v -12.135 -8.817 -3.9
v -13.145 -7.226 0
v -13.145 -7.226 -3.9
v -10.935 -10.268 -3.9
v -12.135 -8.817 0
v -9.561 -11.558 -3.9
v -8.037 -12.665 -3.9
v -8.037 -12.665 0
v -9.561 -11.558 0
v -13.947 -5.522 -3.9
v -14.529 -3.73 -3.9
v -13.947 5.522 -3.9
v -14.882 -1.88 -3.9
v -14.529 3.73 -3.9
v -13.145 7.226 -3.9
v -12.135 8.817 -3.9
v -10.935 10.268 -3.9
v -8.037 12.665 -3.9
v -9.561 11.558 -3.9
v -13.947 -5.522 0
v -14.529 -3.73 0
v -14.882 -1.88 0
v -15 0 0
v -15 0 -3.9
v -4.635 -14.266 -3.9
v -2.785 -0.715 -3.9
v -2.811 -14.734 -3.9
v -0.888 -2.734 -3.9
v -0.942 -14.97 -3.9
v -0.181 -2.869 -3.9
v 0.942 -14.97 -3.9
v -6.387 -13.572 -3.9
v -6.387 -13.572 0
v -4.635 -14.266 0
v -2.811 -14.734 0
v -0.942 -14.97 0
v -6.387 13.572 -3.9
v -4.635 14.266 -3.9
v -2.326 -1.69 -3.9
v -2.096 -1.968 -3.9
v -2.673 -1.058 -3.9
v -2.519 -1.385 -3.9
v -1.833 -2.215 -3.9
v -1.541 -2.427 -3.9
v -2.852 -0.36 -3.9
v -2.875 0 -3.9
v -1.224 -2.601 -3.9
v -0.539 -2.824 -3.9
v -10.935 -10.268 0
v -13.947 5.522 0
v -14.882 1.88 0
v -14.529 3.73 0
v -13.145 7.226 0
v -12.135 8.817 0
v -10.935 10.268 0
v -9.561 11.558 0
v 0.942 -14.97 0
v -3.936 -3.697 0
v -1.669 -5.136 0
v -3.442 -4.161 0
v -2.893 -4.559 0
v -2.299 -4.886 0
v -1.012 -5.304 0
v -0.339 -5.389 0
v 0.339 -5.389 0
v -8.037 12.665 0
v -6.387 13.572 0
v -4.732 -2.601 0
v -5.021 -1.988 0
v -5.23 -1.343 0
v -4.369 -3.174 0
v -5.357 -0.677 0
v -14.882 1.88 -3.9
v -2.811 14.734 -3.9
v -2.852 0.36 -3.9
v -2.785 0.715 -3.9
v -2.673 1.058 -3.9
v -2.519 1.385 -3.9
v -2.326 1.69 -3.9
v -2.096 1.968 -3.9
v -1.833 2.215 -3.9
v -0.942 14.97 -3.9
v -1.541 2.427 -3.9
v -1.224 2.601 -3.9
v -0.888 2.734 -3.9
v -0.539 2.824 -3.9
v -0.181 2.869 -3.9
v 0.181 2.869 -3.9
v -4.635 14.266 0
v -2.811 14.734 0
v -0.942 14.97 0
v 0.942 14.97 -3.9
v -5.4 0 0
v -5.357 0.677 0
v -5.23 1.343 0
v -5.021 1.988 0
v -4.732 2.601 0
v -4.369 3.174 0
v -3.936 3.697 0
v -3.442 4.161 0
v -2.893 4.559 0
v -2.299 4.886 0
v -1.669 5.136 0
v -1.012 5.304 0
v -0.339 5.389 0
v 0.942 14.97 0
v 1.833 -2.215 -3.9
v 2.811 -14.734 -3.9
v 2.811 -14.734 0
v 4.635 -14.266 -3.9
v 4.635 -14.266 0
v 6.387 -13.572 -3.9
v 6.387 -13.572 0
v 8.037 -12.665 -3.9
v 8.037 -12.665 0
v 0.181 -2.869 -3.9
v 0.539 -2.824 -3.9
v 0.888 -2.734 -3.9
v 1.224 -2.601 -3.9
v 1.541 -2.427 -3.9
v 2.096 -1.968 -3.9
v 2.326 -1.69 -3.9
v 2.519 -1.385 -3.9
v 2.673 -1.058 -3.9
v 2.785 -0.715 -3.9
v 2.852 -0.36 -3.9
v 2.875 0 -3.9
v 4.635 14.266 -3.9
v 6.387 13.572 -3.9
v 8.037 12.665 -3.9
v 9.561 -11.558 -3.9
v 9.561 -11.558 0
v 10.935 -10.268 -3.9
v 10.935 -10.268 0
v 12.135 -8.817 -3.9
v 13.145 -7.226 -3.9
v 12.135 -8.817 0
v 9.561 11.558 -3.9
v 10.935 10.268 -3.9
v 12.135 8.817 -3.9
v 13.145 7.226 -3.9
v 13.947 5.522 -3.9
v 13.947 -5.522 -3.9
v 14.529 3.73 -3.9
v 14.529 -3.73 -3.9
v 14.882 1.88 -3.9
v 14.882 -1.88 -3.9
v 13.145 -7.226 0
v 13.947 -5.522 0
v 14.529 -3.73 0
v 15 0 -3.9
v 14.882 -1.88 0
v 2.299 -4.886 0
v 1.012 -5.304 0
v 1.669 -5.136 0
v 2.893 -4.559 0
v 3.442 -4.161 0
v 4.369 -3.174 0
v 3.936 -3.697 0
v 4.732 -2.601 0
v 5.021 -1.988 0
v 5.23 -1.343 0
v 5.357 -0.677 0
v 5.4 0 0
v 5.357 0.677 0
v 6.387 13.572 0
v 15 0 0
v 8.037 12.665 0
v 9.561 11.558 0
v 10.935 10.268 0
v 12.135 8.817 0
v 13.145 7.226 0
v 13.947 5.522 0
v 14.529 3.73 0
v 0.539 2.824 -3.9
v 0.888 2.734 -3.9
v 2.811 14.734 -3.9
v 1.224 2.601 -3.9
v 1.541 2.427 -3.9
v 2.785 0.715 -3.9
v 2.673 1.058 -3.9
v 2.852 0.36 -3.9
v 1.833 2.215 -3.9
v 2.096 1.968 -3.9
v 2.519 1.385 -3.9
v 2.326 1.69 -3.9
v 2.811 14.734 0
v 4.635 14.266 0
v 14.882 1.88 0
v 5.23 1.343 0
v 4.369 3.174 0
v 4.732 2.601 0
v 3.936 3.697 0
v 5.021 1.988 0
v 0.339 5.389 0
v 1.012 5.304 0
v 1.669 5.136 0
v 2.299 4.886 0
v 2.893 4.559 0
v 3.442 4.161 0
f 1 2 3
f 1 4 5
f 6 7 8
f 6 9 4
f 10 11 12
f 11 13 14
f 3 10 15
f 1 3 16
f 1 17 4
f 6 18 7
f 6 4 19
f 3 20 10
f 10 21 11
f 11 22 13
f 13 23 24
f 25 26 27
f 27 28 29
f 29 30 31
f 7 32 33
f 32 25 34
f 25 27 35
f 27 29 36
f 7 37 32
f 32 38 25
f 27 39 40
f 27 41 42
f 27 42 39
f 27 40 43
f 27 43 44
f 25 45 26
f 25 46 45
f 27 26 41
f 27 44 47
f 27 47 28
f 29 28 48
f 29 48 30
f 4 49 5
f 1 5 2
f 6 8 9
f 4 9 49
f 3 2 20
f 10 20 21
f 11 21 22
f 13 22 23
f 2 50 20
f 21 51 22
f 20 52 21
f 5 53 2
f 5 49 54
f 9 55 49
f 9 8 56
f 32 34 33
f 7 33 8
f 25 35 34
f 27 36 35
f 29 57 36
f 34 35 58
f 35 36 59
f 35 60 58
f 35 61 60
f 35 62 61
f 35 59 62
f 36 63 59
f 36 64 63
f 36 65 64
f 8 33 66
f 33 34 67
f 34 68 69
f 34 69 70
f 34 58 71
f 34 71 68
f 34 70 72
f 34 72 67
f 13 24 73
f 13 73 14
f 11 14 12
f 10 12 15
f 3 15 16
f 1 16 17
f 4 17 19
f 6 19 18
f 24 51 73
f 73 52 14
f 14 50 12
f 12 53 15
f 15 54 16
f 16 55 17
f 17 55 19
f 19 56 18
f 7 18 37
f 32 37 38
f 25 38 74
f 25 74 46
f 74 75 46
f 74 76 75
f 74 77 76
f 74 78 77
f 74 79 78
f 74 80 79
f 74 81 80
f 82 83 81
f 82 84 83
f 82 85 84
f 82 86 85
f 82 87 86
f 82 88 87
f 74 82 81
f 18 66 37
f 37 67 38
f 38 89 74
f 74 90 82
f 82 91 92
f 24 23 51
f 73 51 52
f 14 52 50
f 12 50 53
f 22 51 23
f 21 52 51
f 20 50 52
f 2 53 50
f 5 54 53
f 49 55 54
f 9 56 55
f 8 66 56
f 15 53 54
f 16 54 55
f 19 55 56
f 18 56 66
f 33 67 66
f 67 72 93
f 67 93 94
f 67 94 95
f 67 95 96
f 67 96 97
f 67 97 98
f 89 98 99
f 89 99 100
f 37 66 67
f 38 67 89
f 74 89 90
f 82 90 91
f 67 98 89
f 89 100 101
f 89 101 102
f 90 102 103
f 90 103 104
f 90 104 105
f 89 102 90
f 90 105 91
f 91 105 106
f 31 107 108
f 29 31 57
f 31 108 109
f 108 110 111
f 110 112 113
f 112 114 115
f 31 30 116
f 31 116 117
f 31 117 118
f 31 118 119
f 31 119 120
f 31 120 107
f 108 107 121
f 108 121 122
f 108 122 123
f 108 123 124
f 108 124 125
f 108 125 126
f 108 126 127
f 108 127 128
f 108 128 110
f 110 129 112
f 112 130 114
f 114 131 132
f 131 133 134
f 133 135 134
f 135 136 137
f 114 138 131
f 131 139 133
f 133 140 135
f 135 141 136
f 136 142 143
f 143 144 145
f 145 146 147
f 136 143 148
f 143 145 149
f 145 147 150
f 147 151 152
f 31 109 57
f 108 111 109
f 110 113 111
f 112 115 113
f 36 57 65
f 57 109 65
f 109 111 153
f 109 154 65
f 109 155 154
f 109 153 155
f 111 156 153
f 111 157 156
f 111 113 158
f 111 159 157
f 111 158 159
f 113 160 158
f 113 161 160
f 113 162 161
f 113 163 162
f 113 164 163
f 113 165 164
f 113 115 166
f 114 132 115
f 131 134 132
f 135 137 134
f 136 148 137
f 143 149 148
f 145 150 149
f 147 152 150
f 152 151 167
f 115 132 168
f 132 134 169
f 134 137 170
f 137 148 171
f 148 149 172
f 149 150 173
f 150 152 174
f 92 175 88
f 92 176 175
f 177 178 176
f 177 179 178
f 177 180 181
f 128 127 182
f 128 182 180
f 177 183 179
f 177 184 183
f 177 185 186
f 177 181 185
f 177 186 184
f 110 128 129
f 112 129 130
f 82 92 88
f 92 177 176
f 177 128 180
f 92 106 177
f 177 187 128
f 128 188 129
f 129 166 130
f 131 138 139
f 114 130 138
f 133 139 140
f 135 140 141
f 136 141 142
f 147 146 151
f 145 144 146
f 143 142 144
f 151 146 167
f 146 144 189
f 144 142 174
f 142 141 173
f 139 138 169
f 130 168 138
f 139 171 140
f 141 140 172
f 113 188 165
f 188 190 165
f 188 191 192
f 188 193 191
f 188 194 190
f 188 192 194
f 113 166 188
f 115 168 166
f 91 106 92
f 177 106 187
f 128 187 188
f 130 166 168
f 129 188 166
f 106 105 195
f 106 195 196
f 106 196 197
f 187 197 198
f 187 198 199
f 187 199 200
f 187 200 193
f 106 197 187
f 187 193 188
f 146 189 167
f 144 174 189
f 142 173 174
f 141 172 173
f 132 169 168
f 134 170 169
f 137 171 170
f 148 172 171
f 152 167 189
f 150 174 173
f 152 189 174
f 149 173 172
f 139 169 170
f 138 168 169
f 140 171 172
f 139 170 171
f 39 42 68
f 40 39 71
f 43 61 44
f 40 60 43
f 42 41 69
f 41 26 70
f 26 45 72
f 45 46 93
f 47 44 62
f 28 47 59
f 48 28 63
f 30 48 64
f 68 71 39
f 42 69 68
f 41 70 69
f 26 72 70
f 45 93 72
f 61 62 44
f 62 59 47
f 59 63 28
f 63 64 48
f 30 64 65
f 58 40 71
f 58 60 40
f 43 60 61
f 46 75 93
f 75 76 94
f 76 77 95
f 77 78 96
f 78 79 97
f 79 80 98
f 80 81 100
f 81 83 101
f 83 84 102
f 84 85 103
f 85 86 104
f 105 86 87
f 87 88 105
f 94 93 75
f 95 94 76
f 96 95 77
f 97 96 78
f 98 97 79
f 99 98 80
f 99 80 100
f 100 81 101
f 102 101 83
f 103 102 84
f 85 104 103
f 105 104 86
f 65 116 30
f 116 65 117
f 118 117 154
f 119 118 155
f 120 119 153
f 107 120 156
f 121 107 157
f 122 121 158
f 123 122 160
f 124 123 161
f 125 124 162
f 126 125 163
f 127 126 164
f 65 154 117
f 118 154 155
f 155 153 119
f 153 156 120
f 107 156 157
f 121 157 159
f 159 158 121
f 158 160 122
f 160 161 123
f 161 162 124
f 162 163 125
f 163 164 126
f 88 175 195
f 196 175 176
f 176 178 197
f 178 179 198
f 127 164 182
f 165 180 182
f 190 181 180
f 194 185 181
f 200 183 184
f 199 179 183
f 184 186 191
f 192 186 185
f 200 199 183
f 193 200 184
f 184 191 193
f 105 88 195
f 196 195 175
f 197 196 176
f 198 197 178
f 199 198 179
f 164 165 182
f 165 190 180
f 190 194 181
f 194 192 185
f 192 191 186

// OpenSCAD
$fn = 50;

difference() {
	union() {
		translate(v = [0, 0, -3.9]) {
			cylinder(h = 3.9, r = 15.0);
		}
		#translate(v = [0, 0, -6.9]) {
			cylinder(h = 6.9, r = 2.875);
		}
	}
	union() {
		translate(v = [0, 0, 0]) {
			rotate(a = [0, 0, 0]) {
				difference() {
					union() {
						translate(v = [0, 0, -6.9]) {
							cylinder(h = 6.9, r = 2.6);
						}
						translate(v = [0, 0, -3.9]) {
							cylinder(h = 3.9, r1 = 2.875, r2 = 5.4);
						}
						translate(v = [0, 0, -6.9]) {
							cylinder(h = 6.9, r = 2.875);
						}
						translate(v = [0, 0, -6.9]) {
							cylinder(h = 6.9, r = 2.6);
						}
					}
					union();
				}
			}
		}
	}
}
